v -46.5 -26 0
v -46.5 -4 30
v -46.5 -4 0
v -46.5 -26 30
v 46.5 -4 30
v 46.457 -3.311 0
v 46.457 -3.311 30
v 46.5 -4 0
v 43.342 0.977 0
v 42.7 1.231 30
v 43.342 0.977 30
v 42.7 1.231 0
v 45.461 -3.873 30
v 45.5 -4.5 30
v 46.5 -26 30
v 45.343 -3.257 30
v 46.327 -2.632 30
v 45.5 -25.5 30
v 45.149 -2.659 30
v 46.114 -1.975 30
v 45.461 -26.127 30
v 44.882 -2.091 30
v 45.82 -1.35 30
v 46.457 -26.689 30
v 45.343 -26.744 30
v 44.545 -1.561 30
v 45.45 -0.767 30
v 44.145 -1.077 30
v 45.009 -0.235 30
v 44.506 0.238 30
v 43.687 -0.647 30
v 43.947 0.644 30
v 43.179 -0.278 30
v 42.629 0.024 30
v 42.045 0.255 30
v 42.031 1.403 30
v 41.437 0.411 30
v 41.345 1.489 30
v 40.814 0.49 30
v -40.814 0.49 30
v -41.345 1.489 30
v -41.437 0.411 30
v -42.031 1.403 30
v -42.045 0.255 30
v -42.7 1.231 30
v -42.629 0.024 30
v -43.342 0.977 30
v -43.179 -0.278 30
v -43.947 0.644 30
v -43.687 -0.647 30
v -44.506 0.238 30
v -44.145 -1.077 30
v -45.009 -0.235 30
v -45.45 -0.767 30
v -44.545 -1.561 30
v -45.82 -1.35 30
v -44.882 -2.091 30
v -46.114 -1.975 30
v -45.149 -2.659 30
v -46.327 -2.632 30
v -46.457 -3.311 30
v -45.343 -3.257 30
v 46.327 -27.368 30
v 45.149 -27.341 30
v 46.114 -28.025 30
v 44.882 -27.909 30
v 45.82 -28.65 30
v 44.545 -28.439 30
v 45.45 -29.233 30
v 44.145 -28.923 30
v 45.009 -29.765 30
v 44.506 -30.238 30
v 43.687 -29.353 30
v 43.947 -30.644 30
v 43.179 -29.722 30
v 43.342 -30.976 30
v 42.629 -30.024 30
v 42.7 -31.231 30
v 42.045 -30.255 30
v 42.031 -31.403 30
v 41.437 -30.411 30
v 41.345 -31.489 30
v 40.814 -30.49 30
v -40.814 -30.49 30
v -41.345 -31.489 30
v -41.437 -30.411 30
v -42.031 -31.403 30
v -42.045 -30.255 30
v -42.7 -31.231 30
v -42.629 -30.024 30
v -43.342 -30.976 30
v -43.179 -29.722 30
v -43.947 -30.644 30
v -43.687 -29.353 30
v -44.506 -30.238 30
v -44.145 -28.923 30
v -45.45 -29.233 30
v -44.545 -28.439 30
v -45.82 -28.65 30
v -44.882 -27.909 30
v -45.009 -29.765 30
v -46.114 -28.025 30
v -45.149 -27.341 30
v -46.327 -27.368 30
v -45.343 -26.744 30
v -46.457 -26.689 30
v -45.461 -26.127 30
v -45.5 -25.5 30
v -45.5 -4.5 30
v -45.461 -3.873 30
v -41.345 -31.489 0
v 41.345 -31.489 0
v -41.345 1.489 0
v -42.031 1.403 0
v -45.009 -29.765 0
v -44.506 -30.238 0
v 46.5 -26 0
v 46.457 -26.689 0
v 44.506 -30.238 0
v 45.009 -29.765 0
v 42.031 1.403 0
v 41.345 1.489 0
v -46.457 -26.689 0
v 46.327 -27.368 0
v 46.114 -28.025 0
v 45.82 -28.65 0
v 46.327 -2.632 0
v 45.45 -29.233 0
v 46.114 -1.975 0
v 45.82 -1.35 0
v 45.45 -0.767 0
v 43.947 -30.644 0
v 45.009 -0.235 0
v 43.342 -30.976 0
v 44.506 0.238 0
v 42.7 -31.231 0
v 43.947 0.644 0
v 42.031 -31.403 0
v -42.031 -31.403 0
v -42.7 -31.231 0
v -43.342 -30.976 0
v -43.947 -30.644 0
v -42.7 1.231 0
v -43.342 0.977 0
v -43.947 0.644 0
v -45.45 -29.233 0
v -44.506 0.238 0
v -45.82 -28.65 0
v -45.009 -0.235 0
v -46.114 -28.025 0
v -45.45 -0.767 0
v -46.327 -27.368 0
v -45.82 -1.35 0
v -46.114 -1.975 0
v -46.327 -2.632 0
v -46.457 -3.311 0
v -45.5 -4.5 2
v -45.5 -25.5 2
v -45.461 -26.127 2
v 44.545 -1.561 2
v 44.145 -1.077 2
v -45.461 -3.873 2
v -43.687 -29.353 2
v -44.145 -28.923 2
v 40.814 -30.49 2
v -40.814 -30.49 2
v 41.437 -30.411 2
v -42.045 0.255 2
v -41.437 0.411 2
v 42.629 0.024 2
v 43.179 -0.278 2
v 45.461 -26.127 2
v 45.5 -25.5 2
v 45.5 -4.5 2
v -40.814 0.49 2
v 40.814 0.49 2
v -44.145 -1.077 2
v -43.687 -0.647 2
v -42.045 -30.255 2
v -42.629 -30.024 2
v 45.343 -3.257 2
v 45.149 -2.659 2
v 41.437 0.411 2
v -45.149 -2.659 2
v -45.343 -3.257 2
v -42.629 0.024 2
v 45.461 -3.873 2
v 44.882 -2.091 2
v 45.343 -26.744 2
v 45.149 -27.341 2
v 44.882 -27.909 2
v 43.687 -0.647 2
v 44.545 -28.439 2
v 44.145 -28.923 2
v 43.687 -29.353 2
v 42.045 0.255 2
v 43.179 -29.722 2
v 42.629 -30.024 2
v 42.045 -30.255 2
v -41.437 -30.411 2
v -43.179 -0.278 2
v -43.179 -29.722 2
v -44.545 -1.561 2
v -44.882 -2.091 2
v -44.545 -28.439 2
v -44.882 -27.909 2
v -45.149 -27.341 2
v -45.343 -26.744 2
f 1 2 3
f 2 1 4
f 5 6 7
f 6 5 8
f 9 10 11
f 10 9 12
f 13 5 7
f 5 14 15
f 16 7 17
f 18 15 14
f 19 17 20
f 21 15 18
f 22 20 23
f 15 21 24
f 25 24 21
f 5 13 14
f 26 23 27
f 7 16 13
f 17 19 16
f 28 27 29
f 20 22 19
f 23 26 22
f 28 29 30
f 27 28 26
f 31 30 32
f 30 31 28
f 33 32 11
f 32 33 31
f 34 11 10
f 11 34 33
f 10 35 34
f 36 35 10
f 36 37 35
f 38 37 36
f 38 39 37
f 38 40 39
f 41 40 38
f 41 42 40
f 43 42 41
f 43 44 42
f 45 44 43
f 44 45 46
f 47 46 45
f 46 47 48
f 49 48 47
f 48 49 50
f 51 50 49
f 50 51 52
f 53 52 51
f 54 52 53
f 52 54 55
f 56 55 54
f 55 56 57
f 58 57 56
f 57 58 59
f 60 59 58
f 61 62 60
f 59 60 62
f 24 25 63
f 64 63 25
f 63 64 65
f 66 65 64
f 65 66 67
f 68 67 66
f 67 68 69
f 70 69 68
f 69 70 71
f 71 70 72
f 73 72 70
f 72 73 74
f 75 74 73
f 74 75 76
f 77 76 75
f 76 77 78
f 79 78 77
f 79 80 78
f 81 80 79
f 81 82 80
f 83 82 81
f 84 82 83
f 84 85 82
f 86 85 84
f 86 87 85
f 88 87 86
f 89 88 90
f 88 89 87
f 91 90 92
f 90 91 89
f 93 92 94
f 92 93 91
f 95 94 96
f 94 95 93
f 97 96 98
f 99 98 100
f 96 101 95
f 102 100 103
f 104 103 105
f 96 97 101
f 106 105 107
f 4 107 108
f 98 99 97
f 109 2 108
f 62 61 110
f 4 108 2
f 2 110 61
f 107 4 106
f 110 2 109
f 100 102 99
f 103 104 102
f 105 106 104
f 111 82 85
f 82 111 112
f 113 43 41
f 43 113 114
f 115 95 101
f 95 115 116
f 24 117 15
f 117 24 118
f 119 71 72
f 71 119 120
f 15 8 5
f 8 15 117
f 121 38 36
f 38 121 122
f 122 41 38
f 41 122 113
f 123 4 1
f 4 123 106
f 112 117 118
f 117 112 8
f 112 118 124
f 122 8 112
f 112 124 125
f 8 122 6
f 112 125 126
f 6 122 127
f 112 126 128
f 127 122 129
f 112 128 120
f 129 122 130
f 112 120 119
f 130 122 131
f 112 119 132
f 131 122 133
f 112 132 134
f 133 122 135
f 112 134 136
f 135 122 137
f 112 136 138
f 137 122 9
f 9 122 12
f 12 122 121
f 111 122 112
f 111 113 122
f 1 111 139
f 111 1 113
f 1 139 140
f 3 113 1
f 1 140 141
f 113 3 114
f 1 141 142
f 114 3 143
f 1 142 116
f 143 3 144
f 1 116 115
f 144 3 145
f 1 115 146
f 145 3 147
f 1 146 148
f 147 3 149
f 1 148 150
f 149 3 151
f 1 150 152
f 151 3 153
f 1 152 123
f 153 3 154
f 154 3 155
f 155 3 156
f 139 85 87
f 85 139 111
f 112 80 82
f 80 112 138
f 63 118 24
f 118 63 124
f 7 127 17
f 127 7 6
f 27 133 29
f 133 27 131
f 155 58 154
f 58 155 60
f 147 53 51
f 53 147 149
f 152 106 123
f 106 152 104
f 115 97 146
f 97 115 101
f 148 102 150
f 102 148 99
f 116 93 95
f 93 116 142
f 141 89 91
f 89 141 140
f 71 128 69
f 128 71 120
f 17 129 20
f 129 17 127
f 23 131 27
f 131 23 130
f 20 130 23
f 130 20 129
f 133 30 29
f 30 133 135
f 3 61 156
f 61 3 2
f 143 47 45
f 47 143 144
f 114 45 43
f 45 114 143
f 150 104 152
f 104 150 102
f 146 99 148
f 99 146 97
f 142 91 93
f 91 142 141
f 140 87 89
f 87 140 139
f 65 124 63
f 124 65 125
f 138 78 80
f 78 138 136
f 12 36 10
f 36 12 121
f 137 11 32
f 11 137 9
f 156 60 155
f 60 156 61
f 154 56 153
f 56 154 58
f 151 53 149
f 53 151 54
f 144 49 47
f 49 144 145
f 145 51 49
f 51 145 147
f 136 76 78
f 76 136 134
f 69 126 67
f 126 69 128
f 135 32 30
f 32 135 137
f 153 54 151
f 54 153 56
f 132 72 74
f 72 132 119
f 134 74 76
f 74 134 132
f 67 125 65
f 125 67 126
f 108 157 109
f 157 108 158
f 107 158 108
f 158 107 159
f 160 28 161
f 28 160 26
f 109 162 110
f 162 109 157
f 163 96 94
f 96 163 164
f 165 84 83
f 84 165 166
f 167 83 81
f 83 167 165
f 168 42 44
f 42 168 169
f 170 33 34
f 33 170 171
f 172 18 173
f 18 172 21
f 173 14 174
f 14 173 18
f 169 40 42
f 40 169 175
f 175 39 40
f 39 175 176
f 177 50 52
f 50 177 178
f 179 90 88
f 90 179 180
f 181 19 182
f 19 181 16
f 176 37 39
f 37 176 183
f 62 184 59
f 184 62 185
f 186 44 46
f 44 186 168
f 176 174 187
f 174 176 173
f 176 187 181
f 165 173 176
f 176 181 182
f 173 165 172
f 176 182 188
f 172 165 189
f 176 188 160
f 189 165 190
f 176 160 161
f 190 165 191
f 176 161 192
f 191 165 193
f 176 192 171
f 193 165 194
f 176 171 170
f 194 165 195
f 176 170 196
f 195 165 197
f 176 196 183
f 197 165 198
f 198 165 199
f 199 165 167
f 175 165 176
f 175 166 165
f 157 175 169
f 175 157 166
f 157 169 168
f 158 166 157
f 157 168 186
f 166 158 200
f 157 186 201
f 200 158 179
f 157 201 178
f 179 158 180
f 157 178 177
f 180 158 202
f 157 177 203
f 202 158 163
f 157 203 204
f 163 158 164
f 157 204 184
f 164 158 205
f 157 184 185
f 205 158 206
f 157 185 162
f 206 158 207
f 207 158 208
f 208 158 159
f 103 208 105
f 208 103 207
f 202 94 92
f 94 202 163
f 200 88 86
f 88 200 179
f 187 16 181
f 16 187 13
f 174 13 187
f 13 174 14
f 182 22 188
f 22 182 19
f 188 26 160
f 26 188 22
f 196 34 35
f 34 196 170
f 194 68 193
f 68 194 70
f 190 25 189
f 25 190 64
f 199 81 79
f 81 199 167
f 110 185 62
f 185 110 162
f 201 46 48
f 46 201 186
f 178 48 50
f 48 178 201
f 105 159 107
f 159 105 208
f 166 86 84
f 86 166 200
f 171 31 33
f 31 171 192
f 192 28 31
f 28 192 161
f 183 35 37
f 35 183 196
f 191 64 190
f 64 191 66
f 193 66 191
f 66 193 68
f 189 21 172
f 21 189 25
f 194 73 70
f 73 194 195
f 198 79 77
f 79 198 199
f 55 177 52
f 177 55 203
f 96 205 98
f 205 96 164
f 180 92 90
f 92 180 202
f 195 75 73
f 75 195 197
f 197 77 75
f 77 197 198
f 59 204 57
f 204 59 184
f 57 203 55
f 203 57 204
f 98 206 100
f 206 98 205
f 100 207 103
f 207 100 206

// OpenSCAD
$fn = 50;


difference() {
	union() {
		translate(v = [0, -15.0000000000, 0]) {
			hull() {
				translate(v = [-41.0000000000, 11.0000000000, 0]) {
					cylinder(h = 30, r = 5.5000000000);
				}
				translate(v = [41.0000000000, 11.0000000000, 0]) {
					cylinder(h = 30, r = 5.5000000000);
				}
				translate(v = [-41.0000000000, -11.0000000000, 0]) {
					cylinder(h = 30, r = 5.5000000000);
				}
				translate(v = [41.0000000000, -11.0000000000, 0]) {
					cylinder(h = 30, r = 5.5000000000);
				}
			}
		}
	}
	union() {
		translate(v = [0, -15.0000000000, 2]) {
			hull() {
				translate(v = [-40.5000000000, 10.5000000000, 0]) {
					cylinder(h = 60, r = 5);
				}
				translate(v = [40.5000000000, 10.5000000000, 0]) {
					cylinder(h = 60, r = 5);
				}
				translate(v = [-40.5000000000, -10.5000000000, 0]) {
					cylinder(h = 60, r = 5);
				}
				translate(v = [40.5000000000, -10.5000000000, 0]) {
					cylinder(h = 60, r = 5);
				}
			}
		}
	}
}
